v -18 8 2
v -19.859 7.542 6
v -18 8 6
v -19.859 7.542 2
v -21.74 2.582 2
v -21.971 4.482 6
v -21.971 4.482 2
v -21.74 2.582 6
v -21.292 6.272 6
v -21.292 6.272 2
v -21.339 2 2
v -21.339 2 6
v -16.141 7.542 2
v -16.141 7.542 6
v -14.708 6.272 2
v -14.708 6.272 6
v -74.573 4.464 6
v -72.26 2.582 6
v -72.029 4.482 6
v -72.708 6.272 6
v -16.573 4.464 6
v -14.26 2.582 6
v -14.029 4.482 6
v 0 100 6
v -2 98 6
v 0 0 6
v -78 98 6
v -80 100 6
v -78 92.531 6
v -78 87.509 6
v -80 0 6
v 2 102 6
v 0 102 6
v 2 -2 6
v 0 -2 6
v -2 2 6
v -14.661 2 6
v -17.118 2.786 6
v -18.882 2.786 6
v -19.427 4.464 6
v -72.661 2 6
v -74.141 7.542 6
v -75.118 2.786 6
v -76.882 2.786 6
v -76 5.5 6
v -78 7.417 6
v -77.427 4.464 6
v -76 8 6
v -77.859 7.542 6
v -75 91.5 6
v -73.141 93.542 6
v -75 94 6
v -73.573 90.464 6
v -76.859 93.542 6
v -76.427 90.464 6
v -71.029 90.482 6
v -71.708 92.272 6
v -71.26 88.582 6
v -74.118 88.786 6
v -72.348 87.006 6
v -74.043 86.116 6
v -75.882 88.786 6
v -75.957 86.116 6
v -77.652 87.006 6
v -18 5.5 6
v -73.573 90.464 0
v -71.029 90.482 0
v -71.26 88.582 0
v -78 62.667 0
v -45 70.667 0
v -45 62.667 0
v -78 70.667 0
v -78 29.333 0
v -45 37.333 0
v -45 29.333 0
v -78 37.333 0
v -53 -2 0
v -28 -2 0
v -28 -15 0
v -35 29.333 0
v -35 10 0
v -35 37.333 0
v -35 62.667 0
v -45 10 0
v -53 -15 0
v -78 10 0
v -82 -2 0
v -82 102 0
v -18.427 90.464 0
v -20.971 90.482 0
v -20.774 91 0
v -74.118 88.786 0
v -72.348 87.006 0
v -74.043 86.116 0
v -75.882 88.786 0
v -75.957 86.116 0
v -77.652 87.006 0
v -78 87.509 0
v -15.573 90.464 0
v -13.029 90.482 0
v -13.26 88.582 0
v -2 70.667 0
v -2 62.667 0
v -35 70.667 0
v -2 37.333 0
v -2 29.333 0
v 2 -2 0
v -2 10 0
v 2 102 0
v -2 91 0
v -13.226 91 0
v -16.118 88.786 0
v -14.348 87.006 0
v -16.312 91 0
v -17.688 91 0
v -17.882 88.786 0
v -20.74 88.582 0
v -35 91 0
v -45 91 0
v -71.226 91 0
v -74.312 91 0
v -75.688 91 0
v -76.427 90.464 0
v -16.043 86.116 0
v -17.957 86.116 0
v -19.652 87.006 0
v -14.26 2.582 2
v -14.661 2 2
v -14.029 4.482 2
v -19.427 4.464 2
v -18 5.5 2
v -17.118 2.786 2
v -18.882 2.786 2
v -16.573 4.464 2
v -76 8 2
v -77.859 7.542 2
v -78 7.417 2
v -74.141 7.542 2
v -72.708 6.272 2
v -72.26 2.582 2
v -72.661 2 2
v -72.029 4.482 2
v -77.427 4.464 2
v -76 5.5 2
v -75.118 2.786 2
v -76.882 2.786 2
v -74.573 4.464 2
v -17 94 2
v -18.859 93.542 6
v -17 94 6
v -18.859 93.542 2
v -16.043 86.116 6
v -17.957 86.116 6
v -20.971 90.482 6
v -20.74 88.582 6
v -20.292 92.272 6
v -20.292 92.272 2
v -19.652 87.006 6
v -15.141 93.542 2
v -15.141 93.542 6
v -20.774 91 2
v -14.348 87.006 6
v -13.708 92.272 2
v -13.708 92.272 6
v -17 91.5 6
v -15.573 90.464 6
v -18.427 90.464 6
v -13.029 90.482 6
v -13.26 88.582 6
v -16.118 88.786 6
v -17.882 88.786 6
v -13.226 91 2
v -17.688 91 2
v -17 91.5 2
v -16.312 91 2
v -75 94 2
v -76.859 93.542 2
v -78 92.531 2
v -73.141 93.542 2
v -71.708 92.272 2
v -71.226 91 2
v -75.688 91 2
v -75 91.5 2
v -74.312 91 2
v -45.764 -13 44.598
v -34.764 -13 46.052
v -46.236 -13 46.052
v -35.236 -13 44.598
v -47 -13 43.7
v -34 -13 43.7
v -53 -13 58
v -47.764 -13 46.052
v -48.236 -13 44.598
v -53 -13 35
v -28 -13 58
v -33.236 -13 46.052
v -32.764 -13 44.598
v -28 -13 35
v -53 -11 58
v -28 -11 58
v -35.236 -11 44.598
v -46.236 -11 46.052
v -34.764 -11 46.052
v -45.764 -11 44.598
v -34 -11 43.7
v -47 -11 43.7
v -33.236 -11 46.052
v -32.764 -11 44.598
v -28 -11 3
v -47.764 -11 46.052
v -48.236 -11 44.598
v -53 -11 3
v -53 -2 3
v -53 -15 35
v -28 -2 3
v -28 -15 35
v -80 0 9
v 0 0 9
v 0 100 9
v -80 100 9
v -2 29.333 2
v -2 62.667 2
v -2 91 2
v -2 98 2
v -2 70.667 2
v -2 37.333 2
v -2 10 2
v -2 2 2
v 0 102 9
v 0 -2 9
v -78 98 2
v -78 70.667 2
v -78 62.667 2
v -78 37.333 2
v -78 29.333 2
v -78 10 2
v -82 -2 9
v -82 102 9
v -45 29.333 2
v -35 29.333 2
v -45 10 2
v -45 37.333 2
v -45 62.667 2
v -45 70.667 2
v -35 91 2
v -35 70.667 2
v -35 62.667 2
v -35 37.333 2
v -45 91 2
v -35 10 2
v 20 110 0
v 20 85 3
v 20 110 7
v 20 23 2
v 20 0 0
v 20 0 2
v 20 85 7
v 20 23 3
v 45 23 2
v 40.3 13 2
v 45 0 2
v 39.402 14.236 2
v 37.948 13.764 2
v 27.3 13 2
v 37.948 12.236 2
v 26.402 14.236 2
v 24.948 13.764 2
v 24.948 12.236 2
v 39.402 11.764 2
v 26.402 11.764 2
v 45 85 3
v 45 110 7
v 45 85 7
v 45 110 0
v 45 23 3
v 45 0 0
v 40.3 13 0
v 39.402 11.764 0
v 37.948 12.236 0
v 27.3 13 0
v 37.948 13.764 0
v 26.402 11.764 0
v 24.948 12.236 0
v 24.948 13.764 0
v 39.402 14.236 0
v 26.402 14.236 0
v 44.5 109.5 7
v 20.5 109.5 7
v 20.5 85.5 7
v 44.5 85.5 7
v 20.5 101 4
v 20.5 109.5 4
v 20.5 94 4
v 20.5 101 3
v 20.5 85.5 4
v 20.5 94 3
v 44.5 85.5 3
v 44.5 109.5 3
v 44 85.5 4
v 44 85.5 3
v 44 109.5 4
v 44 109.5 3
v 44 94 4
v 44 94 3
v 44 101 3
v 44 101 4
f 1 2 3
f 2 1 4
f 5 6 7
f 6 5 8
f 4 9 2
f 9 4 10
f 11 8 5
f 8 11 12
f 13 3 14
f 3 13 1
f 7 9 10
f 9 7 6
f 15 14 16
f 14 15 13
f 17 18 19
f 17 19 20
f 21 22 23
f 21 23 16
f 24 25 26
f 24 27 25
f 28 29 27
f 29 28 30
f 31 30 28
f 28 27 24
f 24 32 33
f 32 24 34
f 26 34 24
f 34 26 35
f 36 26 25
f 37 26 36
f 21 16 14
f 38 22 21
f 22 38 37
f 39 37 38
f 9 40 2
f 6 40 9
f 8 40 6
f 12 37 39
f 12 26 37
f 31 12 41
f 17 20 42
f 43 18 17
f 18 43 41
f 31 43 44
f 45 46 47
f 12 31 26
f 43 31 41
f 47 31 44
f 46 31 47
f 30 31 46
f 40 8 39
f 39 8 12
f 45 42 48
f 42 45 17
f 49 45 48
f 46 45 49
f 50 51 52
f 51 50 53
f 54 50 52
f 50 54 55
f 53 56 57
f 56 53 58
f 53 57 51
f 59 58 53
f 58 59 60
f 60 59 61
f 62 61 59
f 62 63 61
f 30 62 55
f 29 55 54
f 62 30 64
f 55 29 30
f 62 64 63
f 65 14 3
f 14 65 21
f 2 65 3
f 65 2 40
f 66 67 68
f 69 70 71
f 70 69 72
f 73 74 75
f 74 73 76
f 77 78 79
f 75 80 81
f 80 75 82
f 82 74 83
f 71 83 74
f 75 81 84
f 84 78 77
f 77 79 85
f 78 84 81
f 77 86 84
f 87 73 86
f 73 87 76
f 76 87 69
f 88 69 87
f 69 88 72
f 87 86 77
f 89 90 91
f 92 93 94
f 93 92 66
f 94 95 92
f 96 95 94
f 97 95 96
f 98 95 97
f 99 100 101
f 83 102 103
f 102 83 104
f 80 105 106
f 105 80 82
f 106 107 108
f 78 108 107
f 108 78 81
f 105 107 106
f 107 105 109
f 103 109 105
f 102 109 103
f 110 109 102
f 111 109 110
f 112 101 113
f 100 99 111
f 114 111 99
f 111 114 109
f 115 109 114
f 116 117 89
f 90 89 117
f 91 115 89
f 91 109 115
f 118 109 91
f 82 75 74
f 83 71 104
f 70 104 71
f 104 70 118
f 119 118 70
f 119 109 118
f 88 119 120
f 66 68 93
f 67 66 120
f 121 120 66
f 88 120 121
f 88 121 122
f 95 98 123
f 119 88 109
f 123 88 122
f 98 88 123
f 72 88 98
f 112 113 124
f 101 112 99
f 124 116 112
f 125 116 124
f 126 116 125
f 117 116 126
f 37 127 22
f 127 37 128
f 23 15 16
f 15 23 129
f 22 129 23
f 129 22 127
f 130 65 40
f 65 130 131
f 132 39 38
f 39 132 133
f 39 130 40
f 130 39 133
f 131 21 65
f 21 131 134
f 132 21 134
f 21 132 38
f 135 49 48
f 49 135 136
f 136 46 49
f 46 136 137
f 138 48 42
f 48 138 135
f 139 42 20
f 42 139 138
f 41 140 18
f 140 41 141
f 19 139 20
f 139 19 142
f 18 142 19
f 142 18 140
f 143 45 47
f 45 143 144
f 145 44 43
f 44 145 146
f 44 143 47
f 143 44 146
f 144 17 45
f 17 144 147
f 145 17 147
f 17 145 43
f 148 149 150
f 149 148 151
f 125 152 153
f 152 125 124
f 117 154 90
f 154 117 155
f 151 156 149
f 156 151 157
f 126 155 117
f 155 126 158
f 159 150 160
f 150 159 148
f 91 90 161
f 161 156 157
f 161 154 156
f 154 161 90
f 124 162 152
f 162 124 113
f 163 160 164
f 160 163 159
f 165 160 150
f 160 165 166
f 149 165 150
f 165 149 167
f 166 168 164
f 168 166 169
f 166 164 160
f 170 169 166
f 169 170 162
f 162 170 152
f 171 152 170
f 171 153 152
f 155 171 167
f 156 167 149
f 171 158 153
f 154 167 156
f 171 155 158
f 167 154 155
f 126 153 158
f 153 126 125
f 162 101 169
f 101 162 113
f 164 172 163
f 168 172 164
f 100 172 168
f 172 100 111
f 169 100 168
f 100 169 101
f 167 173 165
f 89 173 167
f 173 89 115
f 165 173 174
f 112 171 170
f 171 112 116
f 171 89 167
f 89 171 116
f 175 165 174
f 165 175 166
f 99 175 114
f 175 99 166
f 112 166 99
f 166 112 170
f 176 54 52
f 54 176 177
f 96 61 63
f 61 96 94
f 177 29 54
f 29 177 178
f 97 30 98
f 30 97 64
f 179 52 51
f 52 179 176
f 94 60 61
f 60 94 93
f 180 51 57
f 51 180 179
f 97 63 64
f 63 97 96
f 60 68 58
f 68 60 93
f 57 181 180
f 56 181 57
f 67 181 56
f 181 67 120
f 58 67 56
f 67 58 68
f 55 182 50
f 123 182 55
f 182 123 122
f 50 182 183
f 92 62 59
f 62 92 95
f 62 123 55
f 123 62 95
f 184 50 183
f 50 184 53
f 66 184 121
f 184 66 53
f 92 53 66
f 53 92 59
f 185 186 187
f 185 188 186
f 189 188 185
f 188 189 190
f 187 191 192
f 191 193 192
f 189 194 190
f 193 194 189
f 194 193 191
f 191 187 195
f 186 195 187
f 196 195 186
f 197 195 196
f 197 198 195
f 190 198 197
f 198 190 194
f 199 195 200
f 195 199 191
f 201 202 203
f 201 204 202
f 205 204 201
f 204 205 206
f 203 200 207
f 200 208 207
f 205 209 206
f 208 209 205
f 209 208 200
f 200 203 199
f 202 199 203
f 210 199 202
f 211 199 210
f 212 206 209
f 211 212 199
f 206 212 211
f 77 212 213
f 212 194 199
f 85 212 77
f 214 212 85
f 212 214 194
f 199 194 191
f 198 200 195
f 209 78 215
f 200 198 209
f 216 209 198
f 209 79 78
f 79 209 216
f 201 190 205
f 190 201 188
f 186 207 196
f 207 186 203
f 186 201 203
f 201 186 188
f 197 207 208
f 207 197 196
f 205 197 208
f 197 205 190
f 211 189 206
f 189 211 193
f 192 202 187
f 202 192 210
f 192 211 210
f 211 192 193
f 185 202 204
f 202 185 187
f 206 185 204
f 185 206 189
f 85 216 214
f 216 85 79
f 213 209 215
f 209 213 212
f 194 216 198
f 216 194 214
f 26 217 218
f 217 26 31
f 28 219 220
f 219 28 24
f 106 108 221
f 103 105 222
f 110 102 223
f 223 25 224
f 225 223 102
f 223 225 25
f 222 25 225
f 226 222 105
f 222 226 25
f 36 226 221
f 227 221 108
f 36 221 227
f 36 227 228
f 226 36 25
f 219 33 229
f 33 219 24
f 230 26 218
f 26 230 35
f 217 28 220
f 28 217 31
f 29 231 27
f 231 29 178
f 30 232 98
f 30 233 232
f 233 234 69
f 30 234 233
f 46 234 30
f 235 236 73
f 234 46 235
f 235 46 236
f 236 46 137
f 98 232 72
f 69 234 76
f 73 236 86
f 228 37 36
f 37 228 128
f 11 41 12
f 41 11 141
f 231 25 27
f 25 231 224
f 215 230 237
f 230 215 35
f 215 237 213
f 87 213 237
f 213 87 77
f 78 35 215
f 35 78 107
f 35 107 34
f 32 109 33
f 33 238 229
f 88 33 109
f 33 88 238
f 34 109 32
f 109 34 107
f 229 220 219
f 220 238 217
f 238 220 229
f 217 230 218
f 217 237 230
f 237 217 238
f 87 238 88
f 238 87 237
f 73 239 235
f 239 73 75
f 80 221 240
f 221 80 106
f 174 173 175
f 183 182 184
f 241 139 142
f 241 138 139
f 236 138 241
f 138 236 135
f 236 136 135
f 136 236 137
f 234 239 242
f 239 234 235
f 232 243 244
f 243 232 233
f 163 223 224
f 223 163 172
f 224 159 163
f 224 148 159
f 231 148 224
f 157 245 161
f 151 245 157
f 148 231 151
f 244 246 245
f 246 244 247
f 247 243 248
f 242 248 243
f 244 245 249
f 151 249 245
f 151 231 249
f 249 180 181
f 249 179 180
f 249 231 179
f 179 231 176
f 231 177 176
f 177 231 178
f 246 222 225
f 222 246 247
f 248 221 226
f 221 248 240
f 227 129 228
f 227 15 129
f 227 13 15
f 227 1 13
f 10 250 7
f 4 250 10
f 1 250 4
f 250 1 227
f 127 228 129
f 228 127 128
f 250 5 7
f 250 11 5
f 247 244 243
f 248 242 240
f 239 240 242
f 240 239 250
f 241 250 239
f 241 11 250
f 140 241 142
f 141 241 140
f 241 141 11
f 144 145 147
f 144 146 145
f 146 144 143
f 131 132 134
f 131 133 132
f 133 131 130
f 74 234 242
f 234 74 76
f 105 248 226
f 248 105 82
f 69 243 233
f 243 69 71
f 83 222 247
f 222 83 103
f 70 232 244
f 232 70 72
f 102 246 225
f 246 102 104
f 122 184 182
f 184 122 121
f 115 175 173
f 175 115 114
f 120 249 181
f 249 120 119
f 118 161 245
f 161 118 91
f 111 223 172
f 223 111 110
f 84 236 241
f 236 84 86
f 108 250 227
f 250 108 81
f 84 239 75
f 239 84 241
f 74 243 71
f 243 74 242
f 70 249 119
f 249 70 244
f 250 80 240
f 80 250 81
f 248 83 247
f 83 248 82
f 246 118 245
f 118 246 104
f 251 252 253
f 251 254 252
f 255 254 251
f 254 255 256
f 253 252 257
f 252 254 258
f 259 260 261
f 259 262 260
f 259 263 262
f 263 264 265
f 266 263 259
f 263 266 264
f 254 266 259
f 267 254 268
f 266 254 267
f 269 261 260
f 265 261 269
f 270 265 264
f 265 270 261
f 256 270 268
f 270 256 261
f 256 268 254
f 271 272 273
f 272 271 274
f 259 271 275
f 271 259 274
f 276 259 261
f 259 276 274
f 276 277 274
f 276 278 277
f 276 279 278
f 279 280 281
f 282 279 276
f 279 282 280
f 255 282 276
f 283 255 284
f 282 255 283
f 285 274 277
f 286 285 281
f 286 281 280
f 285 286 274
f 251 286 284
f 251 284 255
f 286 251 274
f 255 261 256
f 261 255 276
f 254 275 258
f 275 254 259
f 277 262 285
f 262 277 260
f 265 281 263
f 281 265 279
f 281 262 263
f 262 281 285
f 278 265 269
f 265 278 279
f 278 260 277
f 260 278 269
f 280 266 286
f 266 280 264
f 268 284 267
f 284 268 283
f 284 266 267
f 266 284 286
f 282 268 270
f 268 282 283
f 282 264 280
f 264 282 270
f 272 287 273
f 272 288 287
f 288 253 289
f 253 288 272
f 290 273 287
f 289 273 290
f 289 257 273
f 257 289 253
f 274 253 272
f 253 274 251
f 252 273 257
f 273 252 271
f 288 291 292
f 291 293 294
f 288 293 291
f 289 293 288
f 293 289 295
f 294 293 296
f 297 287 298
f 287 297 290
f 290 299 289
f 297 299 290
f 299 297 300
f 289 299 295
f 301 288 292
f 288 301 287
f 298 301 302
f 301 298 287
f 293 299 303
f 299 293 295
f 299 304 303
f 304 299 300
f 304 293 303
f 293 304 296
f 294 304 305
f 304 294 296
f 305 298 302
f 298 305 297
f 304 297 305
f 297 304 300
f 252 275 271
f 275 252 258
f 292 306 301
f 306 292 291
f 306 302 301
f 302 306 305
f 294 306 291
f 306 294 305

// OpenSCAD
// Jetson Nano case, modified version
//
//  2021/10/23
// 
//  - Modified Camera holder.
//  - Updated: More space near the connecter.
//  - Modified Screw spacer position


w = 100;
d = 80;
h = 6;    //h-4
t = 2;

rotate([0,0,90]) top();
translate([20,0,0])  camera_holder();

module spacer(h){
    difference() {
        cylinder(h,4,4);
        cylinder(h+2,1.5,1.5);
    }
}

module top()
{
    //inner
    translate([0,0,0]) cube([w,t,h]);
    translate([0,d-t,0]) cube([w,t,h]);
    translate([0,0,0]) cube([t,d,h]);
    translate([w-t,0,0]) cube([t,d,h]);
    
    //outer
    translate([-t,-t,0]) cube([w+2*t,t,h]);
    translate([0,d,0]) cube([w+t,t,h+3]);
    translate([-t,0,0]) cube([t,d+t,h+3]);
    translate([w,0,0]) cube([t,d+t,h+3]);


    //screw spacer 
    translate([4,18,0]) spacer(h);   //([3,17,0])
    translate([4,76,0]) spacer(h);   //[3,75,0])
    translate([90,17,0]) spacer(h);
    translate([90,75,0]) spacer(h);
    
    // baseplate
    translate([w/3-4,0,0]) cube([8,d,t]);
    translate([(w/3*2)-4,0,0]) cube([8,d,t]);
    translate([91,0,0]) cube([10,d,t]);
    
    translate([0,0,0]) cube([10,d,t]);
    translate([0,d/2-5,0]) cube([w,10,t]);
    
    //camera holder
    translate([-15,d/2-12,0]) {
        cube([15,25,t+1]);
        cube([t,25,35]);
        translate([t,0,0]){
            difference() {
                cube([t,25,58]);
                translate([-2,6,45]) rotate([0,90,0]) cylinder(t+3,1.3,1.3);
                translate([-2,19,45]) rotate([0,90,0]) cylinder(t+3,1.3,1.3);
                }
        }
    }
}


module cameracase()
{
    difference() {
        cube([25,25,7]);
        translate([0.5,0.5,0]) cube([24,24,8]);
    }
    translate([0,0,3]) cube([24,9,1]);
    translate([0,16,3]) cube([24,9,1]);
}

module camera_holder()
{
    //hole part
    difference() {
        cube([25,23,t]);
        translate([25-6,(58-45),-1]) rotate([0,0,0]) cylinder(t+3,1.3,1.3);
        translate([25-19,(58-45),-1]) rotate([0,0,0]) cylinder(t+3,1.3,1.3);
    }

    //additional
    translate([0,23,0]) rotate([0,0,0])  cube([25,110-23,t+1]);

    //outer camera case
    translate([0,(115-30),0]) cameracase();



}
